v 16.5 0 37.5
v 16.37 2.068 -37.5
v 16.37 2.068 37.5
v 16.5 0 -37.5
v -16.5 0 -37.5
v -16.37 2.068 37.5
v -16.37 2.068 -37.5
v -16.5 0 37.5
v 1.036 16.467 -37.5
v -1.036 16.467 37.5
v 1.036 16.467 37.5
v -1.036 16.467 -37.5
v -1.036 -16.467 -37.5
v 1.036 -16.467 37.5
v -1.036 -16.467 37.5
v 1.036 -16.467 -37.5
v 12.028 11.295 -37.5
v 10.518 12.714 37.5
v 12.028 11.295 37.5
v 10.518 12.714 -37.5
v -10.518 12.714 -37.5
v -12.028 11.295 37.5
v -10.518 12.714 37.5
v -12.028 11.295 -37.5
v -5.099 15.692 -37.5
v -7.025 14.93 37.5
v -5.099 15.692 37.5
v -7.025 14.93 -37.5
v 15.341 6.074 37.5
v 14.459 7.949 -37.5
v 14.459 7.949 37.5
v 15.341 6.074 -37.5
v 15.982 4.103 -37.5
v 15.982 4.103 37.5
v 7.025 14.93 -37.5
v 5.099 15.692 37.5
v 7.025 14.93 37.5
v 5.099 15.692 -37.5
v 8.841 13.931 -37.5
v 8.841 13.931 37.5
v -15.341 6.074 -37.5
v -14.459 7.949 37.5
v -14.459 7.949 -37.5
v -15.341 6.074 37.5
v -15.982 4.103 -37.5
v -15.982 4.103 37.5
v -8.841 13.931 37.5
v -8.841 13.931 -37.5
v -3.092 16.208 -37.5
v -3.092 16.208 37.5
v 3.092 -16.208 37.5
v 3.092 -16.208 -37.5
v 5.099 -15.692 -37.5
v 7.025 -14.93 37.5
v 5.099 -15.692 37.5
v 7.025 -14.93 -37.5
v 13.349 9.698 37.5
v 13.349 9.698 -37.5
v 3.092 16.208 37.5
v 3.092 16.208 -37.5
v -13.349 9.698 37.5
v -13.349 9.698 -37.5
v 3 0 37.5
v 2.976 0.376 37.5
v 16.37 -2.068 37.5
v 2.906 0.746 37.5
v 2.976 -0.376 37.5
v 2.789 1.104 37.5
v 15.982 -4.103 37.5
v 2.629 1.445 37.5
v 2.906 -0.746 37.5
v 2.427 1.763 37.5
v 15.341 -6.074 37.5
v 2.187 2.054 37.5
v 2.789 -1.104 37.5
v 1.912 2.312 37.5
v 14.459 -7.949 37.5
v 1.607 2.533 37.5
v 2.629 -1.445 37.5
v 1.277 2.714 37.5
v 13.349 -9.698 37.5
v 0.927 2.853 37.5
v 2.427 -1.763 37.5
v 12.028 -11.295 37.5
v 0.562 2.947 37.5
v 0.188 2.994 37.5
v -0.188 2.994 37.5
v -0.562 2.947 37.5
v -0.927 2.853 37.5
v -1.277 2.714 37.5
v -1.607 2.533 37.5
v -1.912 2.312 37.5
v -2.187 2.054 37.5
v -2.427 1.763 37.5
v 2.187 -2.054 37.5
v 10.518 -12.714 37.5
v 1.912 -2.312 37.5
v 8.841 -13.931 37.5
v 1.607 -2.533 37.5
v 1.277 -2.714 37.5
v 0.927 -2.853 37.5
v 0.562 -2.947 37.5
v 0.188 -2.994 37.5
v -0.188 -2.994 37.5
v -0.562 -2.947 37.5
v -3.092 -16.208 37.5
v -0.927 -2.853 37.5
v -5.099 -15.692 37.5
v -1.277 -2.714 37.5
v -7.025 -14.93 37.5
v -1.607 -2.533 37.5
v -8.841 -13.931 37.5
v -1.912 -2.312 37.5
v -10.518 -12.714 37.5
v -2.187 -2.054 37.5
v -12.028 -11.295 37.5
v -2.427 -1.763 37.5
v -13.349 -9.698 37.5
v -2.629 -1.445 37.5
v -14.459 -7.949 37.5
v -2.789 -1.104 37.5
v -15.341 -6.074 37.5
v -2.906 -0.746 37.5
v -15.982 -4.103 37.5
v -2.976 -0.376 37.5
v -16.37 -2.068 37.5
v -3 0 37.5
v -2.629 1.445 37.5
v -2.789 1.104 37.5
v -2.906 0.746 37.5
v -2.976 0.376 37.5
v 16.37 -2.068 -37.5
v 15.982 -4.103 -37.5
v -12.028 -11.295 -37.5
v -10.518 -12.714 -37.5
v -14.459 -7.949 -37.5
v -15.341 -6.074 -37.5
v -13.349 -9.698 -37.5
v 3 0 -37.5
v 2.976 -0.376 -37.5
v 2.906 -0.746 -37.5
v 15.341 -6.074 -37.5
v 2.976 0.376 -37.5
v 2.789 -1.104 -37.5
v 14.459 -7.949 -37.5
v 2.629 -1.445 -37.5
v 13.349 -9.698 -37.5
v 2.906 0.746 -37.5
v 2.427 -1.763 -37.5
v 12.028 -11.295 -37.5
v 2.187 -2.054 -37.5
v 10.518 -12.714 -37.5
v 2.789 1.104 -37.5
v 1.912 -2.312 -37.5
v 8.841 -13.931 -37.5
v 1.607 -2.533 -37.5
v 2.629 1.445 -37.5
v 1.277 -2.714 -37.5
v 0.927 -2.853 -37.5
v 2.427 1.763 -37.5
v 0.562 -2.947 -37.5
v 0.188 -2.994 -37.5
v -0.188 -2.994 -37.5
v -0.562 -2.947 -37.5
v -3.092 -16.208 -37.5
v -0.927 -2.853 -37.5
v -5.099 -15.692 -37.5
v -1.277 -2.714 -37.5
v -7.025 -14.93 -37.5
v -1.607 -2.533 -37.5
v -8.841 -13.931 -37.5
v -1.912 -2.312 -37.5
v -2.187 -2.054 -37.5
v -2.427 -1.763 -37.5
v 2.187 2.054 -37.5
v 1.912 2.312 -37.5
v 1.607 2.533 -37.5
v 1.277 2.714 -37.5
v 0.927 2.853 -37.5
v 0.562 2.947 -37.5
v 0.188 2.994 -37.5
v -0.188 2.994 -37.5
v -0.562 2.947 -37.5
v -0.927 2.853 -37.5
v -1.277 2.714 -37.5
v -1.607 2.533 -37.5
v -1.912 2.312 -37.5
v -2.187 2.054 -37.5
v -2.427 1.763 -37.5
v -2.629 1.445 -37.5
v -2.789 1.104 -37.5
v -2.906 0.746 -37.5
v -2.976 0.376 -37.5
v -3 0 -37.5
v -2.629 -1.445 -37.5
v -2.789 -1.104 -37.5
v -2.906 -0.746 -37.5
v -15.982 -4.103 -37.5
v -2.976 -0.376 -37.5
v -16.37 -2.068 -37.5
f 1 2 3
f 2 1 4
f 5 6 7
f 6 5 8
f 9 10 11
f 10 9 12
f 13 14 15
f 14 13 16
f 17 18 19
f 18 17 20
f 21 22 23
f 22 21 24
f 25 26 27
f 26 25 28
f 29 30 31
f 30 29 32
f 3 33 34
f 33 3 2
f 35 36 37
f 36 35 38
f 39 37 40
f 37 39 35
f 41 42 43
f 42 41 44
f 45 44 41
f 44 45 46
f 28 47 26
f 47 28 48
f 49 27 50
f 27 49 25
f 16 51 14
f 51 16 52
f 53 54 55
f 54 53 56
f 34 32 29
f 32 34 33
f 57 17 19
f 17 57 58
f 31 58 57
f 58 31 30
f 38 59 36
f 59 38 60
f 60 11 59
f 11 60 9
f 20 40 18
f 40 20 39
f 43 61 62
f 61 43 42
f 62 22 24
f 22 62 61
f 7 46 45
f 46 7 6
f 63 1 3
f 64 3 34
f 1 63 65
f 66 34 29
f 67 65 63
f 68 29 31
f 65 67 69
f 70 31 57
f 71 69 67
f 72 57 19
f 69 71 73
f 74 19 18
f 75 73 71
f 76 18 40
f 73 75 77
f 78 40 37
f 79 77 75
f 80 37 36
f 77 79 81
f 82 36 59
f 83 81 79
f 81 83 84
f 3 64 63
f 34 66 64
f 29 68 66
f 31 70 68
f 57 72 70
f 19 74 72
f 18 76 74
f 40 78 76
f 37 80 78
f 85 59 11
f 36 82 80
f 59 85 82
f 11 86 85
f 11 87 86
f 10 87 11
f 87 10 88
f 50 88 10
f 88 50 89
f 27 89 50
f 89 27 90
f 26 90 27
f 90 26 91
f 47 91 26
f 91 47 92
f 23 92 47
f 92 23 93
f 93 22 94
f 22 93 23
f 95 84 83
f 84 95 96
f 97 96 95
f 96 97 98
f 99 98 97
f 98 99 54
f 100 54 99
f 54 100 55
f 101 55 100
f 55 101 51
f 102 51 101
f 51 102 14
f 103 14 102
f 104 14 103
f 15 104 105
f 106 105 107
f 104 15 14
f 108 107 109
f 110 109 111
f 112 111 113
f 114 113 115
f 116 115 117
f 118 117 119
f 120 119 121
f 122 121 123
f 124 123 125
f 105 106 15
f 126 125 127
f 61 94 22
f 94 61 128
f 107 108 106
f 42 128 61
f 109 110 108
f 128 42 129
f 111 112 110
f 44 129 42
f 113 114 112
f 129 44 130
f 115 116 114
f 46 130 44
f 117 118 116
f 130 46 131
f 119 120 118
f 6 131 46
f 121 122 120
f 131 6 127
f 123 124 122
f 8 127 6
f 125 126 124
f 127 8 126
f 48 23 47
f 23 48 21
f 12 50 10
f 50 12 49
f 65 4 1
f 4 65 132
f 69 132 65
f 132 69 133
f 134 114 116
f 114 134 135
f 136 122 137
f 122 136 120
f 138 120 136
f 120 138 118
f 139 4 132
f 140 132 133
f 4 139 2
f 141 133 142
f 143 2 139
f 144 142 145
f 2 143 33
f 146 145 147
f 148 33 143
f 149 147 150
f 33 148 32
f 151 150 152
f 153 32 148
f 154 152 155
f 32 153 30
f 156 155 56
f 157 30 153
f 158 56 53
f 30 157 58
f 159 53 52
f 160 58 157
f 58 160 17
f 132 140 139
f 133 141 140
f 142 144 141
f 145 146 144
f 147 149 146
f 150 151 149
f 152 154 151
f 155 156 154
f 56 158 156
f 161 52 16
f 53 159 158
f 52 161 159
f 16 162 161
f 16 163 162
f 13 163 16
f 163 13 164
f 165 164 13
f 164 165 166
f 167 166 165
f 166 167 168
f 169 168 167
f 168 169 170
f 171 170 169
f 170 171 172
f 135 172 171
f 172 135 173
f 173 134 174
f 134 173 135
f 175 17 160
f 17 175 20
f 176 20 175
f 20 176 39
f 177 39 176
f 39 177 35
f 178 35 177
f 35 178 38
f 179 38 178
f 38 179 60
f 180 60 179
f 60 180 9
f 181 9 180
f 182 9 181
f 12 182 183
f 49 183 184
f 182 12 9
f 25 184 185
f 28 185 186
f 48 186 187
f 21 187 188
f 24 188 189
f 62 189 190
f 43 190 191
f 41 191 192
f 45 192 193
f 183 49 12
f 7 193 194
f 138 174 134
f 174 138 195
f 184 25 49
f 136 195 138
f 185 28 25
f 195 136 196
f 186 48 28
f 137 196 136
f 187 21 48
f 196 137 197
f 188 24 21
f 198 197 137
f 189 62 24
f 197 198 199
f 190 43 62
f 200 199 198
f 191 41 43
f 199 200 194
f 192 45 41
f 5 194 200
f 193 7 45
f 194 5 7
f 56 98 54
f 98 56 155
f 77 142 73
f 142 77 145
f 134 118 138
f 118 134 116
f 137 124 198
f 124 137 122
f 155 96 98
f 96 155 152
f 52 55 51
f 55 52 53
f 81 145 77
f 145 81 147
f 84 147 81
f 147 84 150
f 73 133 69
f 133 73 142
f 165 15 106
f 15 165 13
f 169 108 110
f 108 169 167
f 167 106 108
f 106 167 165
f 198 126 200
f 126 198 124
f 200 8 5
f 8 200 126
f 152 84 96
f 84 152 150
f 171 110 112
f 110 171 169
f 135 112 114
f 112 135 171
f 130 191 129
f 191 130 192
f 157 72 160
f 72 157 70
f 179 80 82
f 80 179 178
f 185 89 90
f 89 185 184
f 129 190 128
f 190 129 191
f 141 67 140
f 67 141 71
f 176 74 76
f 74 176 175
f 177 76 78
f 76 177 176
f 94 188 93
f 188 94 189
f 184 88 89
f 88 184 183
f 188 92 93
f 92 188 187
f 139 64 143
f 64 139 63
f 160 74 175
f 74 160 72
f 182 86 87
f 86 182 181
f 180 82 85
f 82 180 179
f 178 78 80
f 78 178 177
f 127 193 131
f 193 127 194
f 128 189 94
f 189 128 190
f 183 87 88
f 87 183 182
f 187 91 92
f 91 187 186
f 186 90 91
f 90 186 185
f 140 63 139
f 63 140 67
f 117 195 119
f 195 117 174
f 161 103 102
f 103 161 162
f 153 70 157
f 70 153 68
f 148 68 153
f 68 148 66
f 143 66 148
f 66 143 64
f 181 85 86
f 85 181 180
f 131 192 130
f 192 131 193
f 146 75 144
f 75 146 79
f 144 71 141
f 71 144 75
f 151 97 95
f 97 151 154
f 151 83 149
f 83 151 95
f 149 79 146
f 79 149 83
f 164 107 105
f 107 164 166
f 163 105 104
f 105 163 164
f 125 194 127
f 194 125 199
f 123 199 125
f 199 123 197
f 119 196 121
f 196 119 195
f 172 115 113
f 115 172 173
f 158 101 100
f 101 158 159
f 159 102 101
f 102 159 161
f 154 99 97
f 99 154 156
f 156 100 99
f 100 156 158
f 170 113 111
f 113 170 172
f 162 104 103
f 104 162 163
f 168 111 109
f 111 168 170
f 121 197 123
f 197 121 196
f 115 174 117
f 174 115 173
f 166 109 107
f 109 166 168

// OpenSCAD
$fn = 50;


difference() {
	union() {
		translate(v = [0, 0, -37.5000000000]) {
			cylinder(h = 75, r = 16.5000000000);
		}
	}
	union() {
		translate(v = [0, 0, -100.0000000000]) {
			cylinder(h = 200, r = 3);
		}
	}
}
